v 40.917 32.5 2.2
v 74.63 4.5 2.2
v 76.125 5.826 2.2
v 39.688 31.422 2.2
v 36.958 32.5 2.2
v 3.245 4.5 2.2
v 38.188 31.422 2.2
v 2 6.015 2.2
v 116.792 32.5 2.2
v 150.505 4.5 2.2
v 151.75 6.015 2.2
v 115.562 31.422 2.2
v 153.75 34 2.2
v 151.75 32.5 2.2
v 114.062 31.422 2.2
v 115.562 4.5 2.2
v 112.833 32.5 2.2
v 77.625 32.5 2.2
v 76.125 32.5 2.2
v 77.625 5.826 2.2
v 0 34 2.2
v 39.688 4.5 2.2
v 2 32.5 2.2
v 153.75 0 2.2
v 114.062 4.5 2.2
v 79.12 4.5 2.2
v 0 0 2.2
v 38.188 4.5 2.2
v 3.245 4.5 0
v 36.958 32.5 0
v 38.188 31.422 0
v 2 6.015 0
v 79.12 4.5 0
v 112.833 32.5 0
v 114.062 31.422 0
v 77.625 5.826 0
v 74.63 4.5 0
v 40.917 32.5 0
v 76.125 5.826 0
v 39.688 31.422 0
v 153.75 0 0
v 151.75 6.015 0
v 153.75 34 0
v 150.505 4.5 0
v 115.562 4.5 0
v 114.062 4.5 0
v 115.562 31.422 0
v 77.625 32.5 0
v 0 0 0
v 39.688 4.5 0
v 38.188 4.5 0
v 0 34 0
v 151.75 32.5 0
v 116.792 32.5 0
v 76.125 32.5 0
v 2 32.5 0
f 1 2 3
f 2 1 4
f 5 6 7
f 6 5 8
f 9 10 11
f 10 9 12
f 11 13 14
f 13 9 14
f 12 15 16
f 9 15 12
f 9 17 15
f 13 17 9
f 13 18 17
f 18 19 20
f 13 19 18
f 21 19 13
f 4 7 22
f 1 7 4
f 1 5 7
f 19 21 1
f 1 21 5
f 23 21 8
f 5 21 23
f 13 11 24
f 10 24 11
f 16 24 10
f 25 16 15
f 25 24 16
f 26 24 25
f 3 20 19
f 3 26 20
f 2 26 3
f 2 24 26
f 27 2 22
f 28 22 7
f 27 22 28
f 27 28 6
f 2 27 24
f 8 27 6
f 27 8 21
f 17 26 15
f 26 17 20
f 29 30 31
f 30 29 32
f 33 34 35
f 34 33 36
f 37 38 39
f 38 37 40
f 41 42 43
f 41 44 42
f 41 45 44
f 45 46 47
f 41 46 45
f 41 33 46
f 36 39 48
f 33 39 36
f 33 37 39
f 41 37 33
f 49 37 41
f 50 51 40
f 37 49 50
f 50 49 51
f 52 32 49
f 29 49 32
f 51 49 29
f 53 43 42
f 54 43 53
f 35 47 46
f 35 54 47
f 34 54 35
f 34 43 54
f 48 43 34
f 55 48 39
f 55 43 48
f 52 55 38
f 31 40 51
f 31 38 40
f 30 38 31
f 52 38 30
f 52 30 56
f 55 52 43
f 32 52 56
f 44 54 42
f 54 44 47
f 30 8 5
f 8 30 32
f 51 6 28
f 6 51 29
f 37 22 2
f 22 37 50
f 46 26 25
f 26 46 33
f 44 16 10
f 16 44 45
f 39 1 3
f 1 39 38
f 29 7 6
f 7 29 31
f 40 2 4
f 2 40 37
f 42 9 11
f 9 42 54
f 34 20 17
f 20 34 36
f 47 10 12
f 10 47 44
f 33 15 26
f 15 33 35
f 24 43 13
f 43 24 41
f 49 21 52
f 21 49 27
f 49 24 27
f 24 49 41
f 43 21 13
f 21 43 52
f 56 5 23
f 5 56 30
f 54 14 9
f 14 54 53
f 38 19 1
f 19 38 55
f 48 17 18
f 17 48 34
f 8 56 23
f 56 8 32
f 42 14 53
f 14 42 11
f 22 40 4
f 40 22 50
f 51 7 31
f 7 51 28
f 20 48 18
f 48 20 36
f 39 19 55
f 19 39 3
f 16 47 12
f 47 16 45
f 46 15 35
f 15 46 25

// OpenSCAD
// file: mod_prism.scad
/// @file mod_prism.scad
///
/// @author © Dave Harris 2022
///

// points   1        ^
//        / | \      |
//       /  4  \     h
//      /  / \  \    |
//     0--/---\--2   v
//   w | /     \ | 
//     3---------5
//     <lLH><lRH>


module prism(h=20, lLH=15, lRH=25, w=1)
{
 polyhedron(
  points=[
   [0, 0, 0]       // 0 back LH corner
  ,[lLH, h, 0]     // 1 back peak
  ,[lLH+lRH, 0, 0] // 2 back RH corner
  ,[0, 0, w]       // 3 front LH corner
  ,[lLH, h, w]     // 4 front peak
  ,[lLH+lRH, 0, w] // 5 front RH corner
  ]
  , faces=[
    [0, 3, 5, 2] // bottom
   ,[0, 1, 4, 3] // LH ramp
   ,[1, 2, 5, 4] // RH ramp 
   ,[2, 1, 0]    // back wall
   ,[3, 4, 5]    // front wall
   ]
 );
} // end of module prism()

// local test prism
// prism(lLH=1, lRH= 22, h=18, w=1 );

// eof
// file: fb_globals.scad
/// @file fb_globals.scad
///
/// @brief project footbridge globals
///
/// @author © Dave Harris 2022
///

$fa = 1;   // Fragment angle
$fs = 0.4; // Fragment size resolution

// global constants
//------------------

H_bridge = 49.5; // platform to bridge
W_bridge = 36;   // width of bridge
                 // wider than walkway
                 
H_walk   = 36;   // height of walkway
W_walk   = 34.7; // width of walkway

Steps    = 27;   // number of steps
W_stairs = 32;   // width ~ 9'6" @ H0
L_tread  = 3.5;  // tread ~ 12" @ H0
L_stairs = L_tread * (Steps +1);
H_rise   = H_bridge / (Steps +1); 
  // rise is 1.7678, not H0 1.75 (6")

W_lift   = 34;

W_build  = W_stairs +2;
L_build  = L_stairs+W_bridge+W_lift +2;


H_door   = 28;
W_door   = 18;

H_window = 6;
W_window = 16;


W_plat45  = 93.9;
W_track34 = 87.9;
W_plat23  = 93.8;
W_track12 = 87.9;

W_plat23edge =
   ( W_plat23 - W_stairs +2 ) /2 ;
W_plat45edge =
   ( W_plat45 - W_stairs +2 ) /2 ;
   
L_span34 = W_track34 + W_plat45edge + W_plat23edge;


// eof
// main file
/// @file fb_span34.scad
///
/// @brief footbridge span 3 & 4
///
/// @author © Dave Harris 2022
///

include <fb_globals.scad>;

include <mod_prism.scad>;


echo("L_span34 ", L_span34 );

translate( // bottom beam
  [ 0
  , 0
  , 0  ]
) cube(
  [ L_span34 +2
  , 4.5
  , 2.2  ]
);

translate( // top beam
  [ 0
  , H_walk -1.5 -2
  , 0  ]
) cube(
  [ L_span34 +2
  , 1.5
  , 2.2  ]
);

translate( // upright #1  LH
  [ 0
  , 0
  , 0  ]
) cube(
    [ 2
    , H_walk -2
    , 2.2  ]
  );
  
translate( // upright #5 RH
  [ L_span34
  , 0
  , 0  ]
) cube(
    [ 2
    , H_walk -2
    , 2.2  ]
  );
  
translate( // upright #2
  [ (L_span34 /4 ) +0.25
  , 0
  , 0  ]
) cube(
    [ 1.5
    , H_walk -2
    , 2.2  ]
  );
  
translate( // upright #3
  [ (L_span34 /2 ) +0.25
  , 0
  , 0  ]
) cube(
    [ 1.5
    , H_walk -2
    , 2.2  ]
  );
  
translate( // upright #4
  [ 3* (L_span34 /4 ) +0.25
  , 0
  , 0  ]
) cube(
    [ 1.5
    , H_walk -2
    , 2.2  ]
  );

difference() // cross beams 1/2
{
  translate( // base prism
    [ 0
    , 4.5
    , 0  ]
  ) prism(
        h = H_walk - 4.5 -2
      , w = 2.2
      , lLH = ( L_span34 /4 ) +1
      , lRH = ( L_span34 /4 ) +1
    );
  translate( // sub prism
    [ 0
    , 4.5 -2.5
    , -1  ]
  ) prism(
        h = H_walk - 4.5 -1.5 
      , w = 2.2 +2
      , lLH = ( L_span34 /4 ) +1
      , lRH = ( L_span34 /4 ) +1
    );
}

difference() // cross beams 3/4
{
  translate( // base prism
    [ ( L_span34 /2 )
    , 4.5
    , 0  ]
  ) prism(
        h = H_walk - 4.5 -2
      , w = 2.2
      , lLH = ( L_span34 /4 ) +1
      , lRH = ( L_span34 /4 ) +1
    );
  translate( // sub prism
    [  ( L_span34 /2 )
    , 4.5 -2.5
    , -1  ]
  ) prism(
        h = H_walk - 4.5 -1.5 
      , w = 2.2 +2
      , lLH = ( L_span34 /4 ) +1
      , lRH = ( L_span34 /4 ) +1
    );  
}

// eof
